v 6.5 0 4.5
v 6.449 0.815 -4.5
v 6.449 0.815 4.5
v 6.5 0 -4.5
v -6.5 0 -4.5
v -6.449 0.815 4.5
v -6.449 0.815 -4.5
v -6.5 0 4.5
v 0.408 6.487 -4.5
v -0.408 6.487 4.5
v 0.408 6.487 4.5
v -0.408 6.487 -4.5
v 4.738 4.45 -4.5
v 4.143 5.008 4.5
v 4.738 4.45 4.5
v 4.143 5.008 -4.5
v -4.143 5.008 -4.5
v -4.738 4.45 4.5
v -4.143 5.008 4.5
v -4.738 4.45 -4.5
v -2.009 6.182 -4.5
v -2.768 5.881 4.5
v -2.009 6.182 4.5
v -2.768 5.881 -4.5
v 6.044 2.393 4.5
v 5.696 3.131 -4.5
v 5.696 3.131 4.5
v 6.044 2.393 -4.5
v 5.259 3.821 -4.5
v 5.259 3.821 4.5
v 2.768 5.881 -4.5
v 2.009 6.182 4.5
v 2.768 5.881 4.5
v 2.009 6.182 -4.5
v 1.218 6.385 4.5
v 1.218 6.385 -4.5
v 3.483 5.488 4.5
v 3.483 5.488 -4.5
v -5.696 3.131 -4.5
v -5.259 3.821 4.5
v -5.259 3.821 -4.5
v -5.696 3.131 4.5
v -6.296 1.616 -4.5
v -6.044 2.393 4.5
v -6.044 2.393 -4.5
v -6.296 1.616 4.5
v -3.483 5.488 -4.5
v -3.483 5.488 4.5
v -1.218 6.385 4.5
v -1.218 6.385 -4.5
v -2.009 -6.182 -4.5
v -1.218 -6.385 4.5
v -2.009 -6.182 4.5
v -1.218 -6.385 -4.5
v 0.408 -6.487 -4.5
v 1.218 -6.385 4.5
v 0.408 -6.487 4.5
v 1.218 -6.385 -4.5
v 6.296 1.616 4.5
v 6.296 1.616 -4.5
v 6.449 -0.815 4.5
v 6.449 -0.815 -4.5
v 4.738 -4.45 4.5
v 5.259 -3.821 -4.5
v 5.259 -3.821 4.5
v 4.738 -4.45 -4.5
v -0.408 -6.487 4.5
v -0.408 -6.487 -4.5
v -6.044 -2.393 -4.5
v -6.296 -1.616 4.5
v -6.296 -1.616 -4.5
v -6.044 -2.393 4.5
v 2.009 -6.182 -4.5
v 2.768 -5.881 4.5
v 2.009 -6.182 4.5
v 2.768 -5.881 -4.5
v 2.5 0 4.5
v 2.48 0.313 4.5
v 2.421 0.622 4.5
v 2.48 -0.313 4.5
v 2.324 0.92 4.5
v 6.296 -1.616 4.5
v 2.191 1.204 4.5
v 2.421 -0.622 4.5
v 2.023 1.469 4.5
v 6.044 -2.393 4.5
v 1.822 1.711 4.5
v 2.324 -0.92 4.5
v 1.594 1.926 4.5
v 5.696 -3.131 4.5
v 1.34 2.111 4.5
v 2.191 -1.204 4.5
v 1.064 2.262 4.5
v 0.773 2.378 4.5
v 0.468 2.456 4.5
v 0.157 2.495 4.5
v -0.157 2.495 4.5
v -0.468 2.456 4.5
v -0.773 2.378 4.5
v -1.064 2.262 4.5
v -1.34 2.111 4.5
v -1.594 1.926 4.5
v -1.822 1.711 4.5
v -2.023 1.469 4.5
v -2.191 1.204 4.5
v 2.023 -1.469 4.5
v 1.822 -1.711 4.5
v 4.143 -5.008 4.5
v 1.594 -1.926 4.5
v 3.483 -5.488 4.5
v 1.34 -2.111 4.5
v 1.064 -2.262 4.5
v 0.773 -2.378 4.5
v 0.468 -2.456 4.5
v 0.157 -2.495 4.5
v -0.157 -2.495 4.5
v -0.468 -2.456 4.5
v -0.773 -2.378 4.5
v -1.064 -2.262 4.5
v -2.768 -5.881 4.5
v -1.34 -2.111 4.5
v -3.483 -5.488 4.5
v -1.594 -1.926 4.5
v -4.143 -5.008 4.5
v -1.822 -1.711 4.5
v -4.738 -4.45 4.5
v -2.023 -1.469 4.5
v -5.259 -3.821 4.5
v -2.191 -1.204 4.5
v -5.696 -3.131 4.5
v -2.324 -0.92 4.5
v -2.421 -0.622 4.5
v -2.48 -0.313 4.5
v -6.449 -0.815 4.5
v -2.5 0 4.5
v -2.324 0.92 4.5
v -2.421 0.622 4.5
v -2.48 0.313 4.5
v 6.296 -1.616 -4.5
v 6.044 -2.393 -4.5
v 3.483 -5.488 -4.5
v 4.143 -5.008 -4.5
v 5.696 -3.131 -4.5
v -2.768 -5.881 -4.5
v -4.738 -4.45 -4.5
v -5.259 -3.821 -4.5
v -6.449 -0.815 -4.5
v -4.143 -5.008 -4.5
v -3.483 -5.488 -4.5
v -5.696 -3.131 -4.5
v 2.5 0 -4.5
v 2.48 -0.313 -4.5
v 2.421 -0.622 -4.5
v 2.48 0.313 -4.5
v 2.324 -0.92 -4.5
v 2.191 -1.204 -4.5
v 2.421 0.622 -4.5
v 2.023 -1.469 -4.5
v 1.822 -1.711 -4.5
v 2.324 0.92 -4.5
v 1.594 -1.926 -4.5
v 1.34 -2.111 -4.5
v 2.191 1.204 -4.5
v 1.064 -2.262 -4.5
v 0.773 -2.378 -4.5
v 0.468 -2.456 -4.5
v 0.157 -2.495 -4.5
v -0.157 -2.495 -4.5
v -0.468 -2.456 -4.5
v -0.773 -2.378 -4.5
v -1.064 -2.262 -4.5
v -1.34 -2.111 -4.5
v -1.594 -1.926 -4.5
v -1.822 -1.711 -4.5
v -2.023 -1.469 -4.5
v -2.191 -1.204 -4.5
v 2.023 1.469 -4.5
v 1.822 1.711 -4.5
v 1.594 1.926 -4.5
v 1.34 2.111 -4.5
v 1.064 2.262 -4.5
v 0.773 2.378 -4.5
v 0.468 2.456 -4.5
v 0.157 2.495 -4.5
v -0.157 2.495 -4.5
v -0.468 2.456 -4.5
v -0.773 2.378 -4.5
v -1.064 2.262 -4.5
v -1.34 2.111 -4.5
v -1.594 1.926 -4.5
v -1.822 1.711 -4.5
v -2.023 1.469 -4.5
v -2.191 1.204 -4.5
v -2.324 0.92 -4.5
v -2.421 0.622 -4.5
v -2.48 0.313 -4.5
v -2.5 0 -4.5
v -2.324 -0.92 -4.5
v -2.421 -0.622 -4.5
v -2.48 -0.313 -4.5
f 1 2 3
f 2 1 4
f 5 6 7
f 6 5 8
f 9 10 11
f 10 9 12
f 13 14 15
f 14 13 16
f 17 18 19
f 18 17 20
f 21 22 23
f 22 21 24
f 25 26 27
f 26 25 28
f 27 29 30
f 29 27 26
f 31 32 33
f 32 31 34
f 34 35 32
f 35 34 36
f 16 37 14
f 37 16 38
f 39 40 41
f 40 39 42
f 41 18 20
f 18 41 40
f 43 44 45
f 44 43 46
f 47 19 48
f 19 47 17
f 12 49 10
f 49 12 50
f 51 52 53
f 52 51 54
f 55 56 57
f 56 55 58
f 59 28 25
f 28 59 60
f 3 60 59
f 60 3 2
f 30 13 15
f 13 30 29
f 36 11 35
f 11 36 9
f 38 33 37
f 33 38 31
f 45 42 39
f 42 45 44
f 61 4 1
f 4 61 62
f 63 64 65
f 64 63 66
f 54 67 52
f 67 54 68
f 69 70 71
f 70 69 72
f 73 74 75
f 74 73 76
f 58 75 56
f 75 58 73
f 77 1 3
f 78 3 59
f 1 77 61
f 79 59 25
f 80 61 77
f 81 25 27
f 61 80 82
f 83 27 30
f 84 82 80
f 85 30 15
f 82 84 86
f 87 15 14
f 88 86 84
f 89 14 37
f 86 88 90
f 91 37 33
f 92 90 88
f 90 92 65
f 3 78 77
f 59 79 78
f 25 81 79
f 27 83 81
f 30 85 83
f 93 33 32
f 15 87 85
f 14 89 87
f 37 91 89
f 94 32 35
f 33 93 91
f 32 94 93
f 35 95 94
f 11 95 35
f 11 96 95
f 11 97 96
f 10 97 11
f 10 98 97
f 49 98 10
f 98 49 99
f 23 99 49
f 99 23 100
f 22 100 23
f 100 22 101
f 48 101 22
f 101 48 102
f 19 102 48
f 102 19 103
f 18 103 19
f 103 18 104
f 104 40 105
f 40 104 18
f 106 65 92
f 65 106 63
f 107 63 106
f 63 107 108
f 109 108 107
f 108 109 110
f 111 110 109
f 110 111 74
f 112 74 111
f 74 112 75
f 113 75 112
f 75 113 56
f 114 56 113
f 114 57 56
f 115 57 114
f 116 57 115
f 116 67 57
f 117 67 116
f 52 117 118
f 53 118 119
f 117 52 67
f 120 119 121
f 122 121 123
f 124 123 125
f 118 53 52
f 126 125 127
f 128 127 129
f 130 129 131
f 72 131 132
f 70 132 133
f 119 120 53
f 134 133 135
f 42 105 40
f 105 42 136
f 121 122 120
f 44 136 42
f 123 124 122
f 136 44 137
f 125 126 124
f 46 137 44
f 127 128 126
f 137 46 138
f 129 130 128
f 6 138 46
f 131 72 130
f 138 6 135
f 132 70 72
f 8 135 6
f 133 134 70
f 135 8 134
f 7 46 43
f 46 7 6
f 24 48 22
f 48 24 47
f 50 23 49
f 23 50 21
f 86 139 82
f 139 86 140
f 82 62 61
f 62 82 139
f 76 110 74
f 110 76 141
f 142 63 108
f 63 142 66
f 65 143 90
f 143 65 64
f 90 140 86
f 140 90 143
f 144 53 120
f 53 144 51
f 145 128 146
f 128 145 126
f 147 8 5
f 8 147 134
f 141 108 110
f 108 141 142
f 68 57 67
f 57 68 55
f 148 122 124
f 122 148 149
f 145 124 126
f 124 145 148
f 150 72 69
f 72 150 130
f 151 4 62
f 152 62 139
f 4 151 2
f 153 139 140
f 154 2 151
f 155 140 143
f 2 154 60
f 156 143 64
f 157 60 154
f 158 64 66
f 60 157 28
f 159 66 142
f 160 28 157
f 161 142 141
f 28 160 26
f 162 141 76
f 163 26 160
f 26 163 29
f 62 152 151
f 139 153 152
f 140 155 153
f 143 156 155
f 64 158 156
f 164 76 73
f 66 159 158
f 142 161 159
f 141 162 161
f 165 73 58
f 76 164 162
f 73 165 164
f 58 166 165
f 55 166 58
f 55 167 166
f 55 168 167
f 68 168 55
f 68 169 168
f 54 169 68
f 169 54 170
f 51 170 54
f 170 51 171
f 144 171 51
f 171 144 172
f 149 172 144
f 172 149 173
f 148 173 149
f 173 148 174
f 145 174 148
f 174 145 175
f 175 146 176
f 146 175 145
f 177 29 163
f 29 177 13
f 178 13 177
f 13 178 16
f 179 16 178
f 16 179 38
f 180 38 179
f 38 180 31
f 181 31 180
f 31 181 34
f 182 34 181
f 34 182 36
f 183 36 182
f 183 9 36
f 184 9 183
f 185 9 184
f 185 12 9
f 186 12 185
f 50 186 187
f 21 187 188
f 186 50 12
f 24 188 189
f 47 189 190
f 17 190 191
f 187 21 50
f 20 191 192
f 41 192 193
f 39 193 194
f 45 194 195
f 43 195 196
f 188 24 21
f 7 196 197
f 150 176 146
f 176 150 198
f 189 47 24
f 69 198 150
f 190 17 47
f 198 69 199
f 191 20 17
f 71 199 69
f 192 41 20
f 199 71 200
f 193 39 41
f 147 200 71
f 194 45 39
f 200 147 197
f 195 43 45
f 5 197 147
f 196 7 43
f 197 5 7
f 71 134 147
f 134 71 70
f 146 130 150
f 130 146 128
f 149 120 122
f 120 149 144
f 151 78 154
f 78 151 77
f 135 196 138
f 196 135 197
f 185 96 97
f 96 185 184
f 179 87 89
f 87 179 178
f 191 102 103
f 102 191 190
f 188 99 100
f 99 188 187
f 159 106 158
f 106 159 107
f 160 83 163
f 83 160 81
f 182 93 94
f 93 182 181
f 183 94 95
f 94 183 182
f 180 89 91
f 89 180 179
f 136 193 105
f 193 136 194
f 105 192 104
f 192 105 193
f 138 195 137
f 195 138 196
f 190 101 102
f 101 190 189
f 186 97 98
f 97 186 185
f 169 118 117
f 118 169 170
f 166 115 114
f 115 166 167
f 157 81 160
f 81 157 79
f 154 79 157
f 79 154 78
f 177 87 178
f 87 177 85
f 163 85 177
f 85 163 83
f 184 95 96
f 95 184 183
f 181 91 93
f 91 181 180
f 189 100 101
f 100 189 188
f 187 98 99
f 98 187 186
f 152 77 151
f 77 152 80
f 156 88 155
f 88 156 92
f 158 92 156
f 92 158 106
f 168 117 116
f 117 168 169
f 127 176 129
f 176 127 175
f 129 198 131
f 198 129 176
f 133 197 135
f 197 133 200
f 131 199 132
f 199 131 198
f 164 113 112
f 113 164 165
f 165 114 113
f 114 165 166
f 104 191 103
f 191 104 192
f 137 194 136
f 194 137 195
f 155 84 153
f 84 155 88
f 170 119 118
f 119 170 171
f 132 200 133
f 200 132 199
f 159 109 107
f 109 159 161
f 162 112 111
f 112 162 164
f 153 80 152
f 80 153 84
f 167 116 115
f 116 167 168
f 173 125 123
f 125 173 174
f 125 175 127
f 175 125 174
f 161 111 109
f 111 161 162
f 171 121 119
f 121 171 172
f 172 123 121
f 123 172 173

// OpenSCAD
$fn = 50;


difference() {
	union() {
		translate(v = [0, 0, -4.5000000000]) {
			cylinder(h = 9, r = 6.5000000000);
		}
	}
	union() {
		translate(v = [0, 0, -100.0000000000]) {
			cylinder(h = 200, r = 2.5000000000);
		}
	}
}
